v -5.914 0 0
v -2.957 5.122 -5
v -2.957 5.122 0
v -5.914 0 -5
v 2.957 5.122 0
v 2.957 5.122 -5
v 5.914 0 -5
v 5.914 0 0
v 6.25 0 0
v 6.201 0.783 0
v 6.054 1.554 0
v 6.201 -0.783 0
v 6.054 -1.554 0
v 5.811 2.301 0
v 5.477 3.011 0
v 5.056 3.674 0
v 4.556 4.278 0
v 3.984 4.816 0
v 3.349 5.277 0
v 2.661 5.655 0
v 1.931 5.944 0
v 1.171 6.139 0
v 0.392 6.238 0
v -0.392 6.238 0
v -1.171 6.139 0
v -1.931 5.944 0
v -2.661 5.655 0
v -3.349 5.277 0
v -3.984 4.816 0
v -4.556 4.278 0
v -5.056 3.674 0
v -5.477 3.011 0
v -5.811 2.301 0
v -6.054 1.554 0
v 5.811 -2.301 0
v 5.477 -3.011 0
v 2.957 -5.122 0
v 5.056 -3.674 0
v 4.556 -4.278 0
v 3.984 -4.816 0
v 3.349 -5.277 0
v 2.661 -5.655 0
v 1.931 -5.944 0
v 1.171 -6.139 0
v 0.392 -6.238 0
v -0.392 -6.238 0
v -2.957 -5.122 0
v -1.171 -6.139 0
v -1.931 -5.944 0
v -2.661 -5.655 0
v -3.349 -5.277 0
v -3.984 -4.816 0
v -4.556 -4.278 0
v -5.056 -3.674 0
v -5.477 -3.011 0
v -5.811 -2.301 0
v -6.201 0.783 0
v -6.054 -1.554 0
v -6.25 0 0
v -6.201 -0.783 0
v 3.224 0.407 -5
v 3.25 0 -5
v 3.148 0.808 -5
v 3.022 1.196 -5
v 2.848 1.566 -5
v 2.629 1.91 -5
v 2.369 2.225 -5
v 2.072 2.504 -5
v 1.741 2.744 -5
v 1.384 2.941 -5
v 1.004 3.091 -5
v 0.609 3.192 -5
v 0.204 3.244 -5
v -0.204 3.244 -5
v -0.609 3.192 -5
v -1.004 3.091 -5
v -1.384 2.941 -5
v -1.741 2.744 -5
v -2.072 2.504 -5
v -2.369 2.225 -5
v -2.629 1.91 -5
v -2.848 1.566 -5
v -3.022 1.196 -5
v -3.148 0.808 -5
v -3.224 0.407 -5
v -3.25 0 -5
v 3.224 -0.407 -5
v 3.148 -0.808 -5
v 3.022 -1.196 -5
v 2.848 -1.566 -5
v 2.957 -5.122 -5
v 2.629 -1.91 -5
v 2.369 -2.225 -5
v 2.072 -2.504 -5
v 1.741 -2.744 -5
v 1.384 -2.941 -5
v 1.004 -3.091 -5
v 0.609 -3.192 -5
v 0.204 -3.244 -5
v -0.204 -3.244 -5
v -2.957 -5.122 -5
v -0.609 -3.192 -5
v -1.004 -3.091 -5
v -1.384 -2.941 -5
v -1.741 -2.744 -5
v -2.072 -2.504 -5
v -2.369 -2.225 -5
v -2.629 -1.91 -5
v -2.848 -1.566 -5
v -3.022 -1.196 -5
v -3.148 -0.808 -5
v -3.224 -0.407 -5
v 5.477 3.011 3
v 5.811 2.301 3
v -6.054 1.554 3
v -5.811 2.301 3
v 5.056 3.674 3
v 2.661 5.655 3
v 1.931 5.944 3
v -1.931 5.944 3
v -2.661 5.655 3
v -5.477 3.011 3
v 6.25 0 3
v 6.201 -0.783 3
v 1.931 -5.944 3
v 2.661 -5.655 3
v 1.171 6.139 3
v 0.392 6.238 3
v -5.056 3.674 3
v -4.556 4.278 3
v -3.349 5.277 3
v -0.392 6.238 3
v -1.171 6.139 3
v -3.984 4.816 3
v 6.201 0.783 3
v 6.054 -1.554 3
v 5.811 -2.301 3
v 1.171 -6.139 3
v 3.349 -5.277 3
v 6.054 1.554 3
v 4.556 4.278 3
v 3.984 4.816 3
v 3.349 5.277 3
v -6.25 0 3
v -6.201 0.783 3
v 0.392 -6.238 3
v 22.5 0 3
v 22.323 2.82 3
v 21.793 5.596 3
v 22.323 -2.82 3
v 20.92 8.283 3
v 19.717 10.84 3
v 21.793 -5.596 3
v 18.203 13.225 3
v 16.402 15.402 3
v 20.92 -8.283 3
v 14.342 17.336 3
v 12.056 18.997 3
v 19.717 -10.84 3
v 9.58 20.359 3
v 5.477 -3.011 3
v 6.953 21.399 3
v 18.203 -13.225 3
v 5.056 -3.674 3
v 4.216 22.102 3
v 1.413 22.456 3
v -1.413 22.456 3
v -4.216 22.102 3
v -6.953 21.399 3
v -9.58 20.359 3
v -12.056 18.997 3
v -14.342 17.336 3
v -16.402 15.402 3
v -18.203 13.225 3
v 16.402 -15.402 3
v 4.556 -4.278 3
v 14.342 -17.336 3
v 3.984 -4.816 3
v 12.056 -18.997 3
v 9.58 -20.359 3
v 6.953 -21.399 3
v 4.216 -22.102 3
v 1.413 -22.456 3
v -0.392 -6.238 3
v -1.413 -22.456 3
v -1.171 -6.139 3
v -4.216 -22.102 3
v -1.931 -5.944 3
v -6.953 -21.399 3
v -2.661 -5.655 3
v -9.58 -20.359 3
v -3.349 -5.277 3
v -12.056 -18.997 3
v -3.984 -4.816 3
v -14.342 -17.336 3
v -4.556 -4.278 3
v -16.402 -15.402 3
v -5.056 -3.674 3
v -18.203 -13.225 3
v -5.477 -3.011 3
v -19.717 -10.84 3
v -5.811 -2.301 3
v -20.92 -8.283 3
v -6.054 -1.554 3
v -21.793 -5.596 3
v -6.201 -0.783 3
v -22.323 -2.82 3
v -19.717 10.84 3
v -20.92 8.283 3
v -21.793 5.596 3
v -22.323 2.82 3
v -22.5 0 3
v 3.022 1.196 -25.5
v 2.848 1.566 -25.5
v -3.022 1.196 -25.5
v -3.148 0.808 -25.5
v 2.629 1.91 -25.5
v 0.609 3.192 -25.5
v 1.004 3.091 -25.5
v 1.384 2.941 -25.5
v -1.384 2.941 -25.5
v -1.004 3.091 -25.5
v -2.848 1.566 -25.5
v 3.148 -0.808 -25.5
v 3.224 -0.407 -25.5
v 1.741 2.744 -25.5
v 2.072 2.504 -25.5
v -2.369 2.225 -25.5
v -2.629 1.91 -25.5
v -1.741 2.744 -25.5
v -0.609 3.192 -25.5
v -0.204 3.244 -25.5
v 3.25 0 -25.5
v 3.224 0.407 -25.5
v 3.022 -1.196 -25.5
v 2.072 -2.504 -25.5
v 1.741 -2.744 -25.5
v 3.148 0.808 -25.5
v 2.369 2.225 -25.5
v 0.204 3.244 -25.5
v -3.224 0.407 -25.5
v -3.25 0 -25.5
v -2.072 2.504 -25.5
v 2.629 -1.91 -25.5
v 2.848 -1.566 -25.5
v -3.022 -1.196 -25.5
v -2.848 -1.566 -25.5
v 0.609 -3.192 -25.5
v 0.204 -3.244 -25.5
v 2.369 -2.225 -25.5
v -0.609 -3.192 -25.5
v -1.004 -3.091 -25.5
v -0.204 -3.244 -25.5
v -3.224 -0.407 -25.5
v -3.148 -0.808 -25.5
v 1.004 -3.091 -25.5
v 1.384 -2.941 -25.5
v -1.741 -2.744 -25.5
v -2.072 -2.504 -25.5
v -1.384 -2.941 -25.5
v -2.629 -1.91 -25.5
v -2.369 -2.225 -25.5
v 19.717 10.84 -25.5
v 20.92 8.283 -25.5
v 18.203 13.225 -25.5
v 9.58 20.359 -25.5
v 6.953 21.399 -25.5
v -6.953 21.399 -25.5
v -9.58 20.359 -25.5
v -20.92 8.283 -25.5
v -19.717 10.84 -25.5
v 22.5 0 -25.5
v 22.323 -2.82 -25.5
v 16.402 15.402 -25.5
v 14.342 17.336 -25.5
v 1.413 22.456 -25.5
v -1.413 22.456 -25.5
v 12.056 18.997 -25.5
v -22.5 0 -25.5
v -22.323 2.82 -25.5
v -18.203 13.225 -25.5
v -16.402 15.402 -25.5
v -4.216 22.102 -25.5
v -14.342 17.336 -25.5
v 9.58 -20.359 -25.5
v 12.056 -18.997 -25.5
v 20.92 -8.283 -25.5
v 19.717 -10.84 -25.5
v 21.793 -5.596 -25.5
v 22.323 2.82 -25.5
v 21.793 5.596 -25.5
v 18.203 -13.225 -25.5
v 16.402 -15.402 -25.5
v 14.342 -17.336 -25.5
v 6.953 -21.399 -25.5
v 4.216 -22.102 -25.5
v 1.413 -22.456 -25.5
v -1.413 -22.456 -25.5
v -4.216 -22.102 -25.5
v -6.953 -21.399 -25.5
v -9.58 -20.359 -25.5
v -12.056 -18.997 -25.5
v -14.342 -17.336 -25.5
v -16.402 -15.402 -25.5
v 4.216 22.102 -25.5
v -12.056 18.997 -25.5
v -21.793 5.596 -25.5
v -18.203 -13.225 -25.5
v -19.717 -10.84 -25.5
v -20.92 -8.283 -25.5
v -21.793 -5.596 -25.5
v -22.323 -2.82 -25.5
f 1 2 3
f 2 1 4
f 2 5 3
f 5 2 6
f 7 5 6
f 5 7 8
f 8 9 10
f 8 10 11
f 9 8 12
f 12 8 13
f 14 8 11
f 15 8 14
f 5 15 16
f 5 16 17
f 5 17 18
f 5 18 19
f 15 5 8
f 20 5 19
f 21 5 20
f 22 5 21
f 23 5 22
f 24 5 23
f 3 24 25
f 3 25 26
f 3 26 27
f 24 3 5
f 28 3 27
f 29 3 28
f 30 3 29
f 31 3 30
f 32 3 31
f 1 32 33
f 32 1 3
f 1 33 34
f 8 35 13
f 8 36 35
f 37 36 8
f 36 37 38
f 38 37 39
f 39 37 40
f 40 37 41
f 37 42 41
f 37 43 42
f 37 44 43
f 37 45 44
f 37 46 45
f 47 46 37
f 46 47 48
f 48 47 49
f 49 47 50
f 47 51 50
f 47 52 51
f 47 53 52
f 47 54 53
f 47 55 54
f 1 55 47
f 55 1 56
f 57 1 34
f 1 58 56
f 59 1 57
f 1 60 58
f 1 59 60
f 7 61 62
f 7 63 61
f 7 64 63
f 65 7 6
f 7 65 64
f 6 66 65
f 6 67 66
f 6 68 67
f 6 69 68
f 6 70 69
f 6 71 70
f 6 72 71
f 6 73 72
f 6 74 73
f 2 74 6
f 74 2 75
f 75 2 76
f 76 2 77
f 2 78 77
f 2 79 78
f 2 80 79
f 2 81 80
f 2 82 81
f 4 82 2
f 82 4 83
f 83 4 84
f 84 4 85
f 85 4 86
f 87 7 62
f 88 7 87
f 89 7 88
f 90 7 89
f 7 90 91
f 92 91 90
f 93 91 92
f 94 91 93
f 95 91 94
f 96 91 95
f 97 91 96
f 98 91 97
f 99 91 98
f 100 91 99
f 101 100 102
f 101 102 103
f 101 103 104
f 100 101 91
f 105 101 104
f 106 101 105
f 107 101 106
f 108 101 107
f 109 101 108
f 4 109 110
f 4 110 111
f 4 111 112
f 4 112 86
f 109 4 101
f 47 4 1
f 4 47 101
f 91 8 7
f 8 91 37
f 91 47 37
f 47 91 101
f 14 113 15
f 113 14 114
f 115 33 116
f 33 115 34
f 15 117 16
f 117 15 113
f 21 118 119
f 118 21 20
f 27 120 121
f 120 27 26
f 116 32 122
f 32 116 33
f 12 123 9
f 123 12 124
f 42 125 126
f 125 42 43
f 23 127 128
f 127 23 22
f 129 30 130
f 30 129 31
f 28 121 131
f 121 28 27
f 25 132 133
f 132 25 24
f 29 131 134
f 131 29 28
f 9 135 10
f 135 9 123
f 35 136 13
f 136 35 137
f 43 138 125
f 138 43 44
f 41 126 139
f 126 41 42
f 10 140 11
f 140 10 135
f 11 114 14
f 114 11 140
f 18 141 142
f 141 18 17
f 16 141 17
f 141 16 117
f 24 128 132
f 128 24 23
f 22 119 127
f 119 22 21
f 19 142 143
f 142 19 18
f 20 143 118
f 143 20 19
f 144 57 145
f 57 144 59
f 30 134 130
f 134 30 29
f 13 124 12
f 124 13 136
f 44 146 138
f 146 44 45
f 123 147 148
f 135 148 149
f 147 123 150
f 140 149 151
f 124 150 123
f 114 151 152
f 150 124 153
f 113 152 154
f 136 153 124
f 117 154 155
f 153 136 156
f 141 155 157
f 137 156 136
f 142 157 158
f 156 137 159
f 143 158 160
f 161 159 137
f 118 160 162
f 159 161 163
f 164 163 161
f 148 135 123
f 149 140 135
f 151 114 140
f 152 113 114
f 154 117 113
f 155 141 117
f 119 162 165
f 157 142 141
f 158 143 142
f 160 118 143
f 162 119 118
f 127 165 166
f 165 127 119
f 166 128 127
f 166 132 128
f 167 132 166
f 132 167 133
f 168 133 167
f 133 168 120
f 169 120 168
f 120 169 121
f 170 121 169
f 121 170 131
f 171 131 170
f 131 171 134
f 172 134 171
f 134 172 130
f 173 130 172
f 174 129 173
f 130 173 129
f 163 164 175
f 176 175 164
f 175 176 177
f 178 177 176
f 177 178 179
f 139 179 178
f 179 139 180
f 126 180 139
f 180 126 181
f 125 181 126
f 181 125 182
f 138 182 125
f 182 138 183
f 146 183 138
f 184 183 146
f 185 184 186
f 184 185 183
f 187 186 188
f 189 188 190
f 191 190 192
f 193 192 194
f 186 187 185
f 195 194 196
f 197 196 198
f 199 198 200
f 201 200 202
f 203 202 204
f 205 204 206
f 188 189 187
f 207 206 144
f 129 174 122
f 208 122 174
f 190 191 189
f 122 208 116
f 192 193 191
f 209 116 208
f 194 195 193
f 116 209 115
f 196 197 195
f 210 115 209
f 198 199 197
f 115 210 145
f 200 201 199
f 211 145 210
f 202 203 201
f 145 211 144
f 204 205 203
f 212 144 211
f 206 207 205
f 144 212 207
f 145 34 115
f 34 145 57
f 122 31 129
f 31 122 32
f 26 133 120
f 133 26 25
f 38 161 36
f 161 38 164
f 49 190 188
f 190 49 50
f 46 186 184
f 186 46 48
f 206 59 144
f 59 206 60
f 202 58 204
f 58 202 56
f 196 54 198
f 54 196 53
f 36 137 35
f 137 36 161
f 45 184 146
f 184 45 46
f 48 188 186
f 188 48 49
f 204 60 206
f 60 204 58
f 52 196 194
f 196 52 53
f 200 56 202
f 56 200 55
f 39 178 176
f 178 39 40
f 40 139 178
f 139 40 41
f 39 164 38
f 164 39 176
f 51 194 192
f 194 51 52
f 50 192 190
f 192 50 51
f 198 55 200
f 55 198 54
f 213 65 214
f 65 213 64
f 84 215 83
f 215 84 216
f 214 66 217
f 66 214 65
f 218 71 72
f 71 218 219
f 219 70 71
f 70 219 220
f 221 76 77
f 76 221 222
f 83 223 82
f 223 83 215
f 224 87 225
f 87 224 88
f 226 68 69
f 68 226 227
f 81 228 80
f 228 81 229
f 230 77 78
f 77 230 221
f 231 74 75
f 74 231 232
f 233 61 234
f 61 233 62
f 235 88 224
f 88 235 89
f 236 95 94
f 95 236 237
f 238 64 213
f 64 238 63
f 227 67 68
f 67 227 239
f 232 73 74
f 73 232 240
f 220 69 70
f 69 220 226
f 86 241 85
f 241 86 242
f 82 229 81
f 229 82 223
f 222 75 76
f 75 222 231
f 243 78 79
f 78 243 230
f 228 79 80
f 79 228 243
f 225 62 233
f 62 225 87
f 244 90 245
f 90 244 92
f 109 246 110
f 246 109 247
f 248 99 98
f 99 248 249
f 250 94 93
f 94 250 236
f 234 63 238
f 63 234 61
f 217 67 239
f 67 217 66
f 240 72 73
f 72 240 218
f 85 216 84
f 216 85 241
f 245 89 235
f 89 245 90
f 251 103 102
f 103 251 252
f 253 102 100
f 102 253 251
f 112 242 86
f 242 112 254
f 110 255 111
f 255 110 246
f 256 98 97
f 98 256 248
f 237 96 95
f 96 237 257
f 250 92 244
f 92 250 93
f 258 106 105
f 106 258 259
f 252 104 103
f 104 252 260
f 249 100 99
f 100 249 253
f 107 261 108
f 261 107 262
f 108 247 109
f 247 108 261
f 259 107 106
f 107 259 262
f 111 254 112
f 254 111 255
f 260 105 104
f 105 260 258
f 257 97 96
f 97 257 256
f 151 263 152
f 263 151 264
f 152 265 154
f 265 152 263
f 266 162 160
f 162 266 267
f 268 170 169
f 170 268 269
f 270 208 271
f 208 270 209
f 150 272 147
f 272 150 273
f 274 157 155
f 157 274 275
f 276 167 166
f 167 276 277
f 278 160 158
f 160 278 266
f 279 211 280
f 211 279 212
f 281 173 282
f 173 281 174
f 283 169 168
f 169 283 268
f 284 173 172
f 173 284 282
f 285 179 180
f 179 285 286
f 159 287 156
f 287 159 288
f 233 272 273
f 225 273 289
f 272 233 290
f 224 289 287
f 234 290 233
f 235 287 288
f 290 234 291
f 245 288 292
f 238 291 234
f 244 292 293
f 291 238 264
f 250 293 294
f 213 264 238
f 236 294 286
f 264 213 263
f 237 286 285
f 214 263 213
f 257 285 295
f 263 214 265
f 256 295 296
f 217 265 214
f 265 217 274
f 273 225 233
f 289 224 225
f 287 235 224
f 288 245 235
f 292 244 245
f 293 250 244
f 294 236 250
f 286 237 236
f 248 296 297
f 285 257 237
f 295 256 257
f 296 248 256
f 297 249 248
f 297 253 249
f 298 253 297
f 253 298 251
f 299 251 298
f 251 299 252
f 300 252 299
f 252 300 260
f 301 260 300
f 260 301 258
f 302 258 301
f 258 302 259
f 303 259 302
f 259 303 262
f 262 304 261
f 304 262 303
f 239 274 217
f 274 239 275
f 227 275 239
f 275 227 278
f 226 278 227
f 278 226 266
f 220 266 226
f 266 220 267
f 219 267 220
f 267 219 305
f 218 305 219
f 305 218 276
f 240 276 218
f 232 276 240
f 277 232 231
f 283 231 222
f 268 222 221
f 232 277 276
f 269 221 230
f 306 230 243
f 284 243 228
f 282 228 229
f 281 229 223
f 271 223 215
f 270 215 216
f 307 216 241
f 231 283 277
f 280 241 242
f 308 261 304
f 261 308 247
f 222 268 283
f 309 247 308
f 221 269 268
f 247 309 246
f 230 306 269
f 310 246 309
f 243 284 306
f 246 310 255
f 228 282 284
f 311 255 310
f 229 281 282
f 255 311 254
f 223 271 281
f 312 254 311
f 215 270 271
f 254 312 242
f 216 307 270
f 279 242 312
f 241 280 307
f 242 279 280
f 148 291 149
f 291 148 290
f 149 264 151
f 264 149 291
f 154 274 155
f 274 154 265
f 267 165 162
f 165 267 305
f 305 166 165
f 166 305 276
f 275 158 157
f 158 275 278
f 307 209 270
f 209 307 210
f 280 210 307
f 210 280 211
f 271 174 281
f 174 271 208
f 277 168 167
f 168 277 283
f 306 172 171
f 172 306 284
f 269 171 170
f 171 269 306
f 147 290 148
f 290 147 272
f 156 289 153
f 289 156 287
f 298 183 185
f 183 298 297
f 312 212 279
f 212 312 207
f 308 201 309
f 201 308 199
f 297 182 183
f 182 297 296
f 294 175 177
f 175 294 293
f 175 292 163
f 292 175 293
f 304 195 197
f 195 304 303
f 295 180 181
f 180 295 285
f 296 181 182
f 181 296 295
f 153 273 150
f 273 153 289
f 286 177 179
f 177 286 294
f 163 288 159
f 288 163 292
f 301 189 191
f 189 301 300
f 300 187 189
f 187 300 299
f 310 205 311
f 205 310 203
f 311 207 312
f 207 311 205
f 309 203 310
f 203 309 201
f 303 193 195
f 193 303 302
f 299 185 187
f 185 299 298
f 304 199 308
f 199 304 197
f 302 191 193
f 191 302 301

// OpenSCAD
$fn = 50;

difference() {
	union() {
		translate(v = [0, 0, -25.5]) {
			cylinder(h = 28.5, r = 22.5);
		}
	}
	union() {
		translate(v = [0, 0, 0]) {
			rotate(a = [0, 0, 0]) {
				difference() {
					union() {
						translate(v = [0, 0, -5]) {
							linear_extrude(height = 5) {
								polygon(points = [[5.914249999999999, 0.0], [2.957125, 5.1218907443321156], [-2.9571249999999982, 5.1218907443321156], [-5.914249999999999, 7.242867331857232e-16], [-2.9571250000000022, -5.121890744332115], [2.9571249999999956, -5.121890744332118]]);
							}
						}
					}
					union();
				}
			}
		}
		#cylinder(h = 3, r = 6.25);
		#translate(v = [0, 0, -100.0]) {
			cylinder(h = 200, r = 3.25);
		}
	}
}
